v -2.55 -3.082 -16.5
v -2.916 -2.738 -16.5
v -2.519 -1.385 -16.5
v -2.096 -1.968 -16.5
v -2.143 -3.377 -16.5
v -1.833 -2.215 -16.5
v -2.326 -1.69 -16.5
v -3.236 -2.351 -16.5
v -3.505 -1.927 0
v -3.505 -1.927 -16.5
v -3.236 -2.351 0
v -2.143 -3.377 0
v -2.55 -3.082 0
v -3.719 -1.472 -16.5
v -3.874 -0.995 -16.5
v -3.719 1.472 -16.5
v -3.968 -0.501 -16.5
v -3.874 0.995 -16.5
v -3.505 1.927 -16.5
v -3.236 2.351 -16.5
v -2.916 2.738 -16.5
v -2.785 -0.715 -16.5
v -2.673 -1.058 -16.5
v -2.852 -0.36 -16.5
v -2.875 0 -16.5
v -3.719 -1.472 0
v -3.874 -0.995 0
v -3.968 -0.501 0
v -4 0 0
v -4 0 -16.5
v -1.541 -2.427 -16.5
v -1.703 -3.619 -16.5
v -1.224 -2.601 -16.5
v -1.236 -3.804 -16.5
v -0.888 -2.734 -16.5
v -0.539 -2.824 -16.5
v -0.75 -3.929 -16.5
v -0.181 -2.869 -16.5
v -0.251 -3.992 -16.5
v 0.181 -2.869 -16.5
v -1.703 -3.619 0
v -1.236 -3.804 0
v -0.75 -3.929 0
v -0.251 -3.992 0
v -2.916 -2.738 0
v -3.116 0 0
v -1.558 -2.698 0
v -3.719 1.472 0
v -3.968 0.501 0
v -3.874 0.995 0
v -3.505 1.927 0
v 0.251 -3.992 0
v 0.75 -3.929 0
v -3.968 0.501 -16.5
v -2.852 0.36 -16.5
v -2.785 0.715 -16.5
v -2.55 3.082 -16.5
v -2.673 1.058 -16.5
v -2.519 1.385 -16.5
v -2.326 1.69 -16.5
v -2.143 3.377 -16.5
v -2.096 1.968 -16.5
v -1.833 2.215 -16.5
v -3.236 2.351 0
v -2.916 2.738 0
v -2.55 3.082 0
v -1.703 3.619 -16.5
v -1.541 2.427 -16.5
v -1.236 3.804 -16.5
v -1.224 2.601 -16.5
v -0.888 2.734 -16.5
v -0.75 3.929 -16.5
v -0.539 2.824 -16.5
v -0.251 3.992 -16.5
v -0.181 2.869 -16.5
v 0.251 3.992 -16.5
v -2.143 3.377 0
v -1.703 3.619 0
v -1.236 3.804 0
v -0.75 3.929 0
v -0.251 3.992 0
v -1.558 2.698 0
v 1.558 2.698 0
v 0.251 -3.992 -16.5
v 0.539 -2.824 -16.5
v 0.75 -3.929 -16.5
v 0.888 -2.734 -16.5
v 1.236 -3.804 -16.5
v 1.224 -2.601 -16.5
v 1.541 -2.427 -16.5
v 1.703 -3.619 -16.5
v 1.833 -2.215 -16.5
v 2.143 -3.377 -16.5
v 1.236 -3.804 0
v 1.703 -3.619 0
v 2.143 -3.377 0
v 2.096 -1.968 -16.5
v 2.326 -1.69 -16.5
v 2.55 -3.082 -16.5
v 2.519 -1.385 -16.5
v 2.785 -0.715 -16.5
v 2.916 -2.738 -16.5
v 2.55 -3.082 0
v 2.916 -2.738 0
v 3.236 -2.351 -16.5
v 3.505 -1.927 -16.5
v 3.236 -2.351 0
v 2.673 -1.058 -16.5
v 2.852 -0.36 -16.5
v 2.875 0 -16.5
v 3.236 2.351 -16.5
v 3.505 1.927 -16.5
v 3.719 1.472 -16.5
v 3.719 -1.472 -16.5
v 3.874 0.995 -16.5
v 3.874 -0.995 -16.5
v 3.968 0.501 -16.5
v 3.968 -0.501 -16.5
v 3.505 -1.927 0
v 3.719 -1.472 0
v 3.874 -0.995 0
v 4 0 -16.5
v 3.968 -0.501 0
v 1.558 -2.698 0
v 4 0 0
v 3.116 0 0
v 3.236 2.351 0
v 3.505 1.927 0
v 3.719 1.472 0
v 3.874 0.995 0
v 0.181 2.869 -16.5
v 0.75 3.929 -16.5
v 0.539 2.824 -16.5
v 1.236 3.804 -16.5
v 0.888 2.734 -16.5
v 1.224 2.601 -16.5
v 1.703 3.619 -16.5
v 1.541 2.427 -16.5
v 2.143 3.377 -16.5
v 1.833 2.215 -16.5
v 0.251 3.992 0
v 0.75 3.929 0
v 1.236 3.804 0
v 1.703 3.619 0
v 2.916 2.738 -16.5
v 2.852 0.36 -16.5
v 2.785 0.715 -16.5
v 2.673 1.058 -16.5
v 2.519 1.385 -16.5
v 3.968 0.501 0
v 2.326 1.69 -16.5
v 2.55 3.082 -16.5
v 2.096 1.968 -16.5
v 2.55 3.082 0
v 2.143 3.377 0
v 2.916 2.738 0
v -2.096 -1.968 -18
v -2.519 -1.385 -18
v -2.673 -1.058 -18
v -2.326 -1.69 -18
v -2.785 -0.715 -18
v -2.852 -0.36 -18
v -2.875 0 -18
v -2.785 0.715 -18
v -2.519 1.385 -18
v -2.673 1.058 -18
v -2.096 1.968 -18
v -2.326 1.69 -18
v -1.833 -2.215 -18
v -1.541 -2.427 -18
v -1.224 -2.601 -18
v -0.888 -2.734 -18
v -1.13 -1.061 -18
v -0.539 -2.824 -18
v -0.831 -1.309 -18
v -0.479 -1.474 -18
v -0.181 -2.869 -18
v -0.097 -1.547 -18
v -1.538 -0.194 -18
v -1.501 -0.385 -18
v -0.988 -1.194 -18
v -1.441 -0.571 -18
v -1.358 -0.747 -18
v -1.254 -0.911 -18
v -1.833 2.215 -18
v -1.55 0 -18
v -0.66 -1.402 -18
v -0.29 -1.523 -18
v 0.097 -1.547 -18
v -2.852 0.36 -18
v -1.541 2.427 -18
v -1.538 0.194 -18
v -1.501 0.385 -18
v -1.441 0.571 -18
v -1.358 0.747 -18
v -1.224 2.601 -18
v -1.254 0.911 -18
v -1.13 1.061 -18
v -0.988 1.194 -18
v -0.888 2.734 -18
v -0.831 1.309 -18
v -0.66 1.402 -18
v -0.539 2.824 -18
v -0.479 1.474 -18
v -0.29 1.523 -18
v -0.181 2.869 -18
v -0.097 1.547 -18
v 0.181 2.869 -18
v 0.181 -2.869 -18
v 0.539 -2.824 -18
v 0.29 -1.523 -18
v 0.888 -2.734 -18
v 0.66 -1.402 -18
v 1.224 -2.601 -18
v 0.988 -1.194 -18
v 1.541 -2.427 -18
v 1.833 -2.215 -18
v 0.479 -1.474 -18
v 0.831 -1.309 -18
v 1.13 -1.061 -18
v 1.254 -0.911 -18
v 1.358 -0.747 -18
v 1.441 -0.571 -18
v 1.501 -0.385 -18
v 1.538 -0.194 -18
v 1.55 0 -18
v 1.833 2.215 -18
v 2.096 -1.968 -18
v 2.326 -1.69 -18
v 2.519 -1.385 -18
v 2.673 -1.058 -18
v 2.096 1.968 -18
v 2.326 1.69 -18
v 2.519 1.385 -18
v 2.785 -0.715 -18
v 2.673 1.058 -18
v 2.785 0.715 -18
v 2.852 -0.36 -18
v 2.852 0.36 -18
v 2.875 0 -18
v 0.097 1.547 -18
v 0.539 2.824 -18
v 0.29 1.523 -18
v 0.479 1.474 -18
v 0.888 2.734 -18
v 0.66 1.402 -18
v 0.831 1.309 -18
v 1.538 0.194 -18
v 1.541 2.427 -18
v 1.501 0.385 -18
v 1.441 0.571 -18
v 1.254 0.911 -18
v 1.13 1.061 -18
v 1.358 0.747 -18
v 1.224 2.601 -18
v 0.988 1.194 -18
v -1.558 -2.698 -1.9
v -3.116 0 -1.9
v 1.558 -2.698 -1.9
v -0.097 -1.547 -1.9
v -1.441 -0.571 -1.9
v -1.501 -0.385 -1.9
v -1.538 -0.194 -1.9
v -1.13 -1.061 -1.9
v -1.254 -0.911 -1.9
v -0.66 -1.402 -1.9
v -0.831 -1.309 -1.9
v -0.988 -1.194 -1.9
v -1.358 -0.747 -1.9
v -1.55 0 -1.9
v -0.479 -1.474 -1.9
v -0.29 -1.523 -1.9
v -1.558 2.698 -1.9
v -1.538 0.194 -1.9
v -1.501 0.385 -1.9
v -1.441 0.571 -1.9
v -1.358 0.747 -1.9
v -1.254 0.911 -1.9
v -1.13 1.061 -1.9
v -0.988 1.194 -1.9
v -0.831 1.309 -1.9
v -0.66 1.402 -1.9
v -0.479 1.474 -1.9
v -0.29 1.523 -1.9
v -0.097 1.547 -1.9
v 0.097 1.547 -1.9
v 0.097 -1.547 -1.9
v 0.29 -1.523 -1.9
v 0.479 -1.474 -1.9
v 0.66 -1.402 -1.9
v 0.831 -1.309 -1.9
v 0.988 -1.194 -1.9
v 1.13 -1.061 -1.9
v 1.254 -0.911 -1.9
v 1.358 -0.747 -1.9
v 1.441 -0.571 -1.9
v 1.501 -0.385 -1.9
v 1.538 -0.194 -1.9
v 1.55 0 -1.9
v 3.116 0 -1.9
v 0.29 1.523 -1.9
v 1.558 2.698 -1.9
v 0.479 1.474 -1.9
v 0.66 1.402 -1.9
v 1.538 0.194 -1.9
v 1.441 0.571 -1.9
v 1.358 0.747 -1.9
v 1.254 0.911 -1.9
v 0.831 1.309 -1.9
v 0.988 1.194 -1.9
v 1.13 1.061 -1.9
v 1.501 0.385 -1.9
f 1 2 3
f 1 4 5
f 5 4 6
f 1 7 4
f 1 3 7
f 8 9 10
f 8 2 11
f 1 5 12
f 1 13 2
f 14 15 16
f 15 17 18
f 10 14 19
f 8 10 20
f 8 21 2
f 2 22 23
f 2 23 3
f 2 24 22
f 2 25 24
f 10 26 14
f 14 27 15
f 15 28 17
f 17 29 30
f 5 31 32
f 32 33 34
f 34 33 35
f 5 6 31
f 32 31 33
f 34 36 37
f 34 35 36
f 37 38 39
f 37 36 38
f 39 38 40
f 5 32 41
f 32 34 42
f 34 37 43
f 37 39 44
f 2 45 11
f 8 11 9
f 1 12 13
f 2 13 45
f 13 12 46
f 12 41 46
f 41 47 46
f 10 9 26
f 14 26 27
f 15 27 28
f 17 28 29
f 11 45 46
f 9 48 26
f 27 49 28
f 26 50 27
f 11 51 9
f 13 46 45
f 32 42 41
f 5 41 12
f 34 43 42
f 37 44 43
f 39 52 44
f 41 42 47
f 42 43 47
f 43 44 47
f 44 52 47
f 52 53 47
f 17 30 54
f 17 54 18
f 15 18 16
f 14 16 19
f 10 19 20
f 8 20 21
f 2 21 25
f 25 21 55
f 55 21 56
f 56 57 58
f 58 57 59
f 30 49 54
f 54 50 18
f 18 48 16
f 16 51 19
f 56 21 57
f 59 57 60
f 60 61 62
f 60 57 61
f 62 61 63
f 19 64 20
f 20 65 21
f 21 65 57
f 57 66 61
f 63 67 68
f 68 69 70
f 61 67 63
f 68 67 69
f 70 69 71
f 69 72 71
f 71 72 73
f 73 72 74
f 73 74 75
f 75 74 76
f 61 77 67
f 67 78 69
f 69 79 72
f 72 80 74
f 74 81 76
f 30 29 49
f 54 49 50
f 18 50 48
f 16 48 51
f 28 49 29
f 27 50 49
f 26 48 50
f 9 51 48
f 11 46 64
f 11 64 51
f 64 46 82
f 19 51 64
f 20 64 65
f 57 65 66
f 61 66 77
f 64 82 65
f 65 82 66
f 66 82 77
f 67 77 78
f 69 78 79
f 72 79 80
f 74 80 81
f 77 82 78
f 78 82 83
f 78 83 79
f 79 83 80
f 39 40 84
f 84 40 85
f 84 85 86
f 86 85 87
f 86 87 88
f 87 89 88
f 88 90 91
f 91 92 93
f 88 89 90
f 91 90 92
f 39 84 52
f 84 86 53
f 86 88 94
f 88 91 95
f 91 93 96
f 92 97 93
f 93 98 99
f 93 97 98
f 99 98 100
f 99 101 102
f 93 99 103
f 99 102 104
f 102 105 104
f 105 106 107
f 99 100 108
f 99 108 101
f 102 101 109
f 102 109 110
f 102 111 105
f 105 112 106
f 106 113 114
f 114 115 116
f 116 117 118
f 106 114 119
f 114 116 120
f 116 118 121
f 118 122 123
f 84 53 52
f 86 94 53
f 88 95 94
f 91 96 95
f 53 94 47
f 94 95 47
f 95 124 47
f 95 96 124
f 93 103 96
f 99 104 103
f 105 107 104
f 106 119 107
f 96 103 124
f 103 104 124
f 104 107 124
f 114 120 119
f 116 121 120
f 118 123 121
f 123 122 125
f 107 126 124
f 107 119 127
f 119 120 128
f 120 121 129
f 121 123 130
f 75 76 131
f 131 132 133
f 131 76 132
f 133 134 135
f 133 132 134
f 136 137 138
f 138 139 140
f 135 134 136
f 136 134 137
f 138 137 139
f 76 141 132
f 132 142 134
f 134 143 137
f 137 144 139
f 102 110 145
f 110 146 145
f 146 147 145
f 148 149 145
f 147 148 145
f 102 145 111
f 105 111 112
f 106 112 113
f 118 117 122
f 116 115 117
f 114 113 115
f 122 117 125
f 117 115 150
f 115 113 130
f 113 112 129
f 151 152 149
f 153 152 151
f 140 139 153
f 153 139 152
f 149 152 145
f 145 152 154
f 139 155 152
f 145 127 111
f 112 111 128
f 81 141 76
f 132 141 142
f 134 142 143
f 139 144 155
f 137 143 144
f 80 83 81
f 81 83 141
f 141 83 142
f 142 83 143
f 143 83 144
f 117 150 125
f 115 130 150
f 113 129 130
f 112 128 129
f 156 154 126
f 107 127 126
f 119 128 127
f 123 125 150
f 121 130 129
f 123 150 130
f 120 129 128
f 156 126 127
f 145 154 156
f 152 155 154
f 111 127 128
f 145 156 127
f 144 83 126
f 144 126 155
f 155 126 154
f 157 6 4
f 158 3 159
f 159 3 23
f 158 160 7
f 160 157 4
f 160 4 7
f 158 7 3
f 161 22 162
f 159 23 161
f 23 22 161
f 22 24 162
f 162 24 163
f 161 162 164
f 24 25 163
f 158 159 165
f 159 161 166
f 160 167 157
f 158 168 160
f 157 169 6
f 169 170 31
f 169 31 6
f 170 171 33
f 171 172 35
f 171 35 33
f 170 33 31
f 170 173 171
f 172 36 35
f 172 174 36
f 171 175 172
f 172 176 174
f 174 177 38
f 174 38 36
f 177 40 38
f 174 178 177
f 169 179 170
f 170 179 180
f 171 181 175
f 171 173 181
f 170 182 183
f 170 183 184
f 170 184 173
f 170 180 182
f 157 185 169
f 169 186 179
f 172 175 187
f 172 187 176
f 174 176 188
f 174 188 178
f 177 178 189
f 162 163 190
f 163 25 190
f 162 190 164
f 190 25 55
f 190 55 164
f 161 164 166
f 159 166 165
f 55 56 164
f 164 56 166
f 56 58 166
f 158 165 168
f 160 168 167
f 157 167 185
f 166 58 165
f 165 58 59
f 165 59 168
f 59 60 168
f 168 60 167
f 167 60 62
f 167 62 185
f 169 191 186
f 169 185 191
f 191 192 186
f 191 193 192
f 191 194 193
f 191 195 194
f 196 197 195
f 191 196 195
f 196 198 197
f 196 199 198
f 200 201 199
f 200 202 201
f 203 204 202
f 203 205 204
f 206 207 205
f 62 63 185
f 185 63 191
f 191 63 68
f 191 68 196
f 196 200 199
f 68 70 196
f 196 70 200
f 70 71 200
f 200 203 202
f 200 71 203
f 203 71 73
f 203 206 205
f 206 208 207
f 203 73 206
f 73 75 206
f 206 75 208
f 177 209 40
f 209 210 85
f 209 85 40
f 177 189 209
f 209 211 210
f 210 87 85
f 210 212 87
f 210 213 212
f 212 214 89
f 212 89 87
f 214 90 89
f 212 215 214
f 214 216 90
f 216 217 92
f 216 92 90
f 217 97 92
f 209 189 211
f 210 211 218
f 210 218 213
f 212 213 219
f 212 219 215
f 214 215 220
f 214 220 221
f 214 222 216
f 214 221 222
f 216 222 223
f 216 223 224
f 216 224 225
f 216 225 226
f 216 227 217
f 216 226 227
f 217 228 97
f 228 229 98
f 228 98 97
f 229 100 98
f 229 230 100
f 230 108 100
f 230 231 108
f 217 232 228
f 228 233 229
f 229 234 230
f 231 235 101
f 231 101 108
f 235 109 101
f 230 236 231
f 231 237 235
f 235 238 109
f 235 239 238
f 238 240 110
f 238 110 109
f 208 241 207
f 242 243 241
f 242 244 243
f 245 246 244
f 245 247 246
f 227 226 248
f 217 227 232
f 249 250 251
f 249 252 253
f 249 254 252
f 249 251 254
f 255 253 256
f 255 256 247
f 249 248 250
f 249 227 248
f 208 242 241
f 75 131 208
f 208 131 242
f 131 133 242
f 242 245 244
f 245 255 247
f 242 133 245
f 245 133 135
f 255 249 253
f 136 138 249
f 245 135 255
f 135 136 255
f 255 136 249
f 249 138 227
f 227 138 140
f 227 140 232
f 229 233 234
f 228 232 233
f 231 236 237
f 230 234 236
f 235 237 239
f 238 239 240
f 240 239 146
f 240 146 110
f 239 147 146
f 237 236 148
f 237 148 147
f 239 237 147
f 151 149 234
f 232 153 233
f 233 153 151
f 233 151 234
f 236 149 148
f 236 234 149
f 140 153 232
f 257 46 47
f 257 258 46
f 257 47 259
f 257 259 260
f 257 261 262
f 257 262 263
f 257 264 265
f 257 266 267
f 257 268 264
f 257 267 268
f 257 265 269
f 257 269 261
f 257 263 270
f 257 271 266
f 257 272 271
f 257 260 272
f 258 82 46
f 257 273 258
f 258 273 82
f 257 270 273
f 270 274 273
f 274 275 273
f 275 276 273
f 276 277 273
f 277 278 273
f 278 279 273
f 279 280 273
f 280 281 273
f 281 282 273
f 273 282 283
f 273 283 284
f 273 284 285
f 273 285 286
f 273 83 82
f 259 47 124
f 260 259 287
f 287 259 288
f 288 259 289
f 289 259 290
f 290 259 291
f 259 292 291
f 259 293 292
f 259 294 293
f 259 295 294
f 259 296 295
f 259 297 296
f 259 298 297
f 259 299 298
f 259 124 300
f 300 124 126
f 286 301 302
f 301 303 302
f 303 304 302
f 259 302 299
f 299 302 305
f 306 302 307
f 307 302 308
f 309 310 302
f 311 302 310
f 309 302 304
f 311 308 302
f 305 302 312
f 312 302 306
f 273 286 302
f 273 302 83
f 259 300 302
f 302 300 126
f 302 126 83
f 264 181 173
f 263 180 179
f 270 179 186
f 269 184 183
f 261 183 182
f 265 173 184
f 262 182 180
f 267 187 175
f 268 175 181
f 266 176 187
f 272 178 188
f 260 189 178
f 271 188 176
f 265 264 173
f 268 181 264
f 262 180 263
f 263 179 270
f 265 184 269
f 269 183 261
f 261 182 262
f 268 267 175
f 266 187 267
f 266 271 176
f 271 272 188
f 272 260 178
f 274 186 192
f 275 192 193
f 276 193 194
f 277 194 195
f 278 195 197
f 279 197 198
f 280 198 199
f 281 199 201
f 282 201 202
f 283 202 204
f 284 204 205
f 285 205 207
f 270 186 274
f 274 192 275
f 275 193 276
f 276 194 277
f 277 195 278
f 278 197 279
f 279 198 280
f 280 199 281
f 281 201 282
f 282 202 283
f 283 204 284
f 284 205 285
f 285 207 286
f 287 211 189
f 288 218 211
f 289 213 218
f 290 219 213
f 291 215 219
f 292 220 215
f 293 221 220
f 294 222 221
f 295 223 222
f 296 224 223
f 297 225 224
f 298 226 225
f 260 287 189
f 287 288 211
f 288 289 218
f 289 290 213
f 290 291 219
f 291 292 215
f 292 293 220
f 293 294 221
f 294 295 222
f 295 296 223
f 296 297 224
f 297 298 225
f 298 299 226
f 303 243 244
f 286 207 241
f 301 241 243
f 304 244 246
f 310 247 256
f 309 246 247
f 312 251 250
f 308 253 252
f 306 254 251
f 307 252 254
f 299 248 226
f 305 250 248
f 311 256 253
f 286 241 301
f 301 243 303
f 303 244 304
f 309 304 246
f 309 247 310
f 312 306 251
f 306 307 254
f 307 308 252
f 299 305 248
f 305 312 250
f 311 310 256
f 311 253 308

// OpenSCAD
$fn = 50;

difference() {
	union() {
		translate(v = [0, 0, -16.5]) {
			cylinder(h = 16.5, r = 4.0);
		}
		#translate(v = [0, 0, -18.0]) {
			cylinder(h = 18, r = 2.875);
		}
	}
	union() {
		translate(v = [0, 0, 0]) {
			rotate(a = [0, 0, 0]) {
				difference() {
					union() {
						translate(v = [0, 0, -1.9]) {
							linear_extrude(height = 1.9) {
								polygon(points = [[3.1158, 0.0], [1.5579000000000005, 2.698361953111554], [-1.5578999999999994, 2.6983619531115544], [-3.1158, 3.815754496783323e-16], [-1.5579000000000014, -2.6983619531115535], [1.557899999999998, -2.6983619531115552]]);
							}
						}
					}
					union();
				}
			}
		}
		#translate(v = [0, 0, -100.0]) {
			cylinder(h = 200, r = 1.55);
		}
	}
}
